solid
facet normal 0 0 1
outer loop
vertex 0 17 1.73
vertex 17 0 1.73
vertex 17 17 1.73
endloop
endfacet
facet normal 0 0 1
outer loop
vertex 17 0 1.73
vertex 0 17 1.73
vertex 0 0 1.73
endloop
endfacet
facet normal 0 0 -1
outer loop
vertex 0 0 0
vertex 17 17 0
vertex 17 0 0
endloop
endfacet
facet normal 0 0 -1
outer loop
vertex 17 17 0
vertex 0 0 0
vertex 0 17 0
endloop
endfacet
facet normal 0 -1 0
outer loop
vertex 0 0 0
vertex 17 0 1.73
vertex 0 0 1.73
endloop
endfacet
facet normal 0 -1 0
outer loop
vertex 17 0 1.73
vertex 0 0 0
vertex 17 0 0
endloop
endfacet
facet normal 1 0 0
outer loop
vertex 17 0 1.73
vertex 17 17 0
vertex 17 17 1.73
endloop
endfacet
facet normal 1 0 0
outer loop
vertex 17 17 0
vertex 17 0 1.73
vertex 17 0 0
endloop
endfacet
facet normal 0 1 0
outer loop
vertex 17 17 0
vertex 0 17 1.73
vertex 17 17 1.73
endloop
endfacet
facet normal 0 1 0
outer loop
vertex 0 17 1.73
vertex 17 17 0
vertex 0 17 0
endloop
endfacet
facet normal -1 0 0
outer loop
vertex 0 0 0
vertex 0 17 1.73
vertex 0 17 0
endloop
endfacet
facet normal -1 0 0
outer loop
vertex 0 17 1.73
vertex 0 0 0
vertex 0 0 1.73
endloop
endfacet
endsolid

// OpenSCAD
/* Warning, this is a very basic generator with a lot of approximation 
input data : [FBGA, NFC, 17x17x1.73mm, 728, , A, C04-25536A]
generated by com.zoubworld.electronics.cad.model3d.Basic
Date : Sun Feb 15 10:50:49 CET 2026
*/

//body
color("black")
translate([0,0,0])
cube([17.0,17.0,1.73], center=false);
